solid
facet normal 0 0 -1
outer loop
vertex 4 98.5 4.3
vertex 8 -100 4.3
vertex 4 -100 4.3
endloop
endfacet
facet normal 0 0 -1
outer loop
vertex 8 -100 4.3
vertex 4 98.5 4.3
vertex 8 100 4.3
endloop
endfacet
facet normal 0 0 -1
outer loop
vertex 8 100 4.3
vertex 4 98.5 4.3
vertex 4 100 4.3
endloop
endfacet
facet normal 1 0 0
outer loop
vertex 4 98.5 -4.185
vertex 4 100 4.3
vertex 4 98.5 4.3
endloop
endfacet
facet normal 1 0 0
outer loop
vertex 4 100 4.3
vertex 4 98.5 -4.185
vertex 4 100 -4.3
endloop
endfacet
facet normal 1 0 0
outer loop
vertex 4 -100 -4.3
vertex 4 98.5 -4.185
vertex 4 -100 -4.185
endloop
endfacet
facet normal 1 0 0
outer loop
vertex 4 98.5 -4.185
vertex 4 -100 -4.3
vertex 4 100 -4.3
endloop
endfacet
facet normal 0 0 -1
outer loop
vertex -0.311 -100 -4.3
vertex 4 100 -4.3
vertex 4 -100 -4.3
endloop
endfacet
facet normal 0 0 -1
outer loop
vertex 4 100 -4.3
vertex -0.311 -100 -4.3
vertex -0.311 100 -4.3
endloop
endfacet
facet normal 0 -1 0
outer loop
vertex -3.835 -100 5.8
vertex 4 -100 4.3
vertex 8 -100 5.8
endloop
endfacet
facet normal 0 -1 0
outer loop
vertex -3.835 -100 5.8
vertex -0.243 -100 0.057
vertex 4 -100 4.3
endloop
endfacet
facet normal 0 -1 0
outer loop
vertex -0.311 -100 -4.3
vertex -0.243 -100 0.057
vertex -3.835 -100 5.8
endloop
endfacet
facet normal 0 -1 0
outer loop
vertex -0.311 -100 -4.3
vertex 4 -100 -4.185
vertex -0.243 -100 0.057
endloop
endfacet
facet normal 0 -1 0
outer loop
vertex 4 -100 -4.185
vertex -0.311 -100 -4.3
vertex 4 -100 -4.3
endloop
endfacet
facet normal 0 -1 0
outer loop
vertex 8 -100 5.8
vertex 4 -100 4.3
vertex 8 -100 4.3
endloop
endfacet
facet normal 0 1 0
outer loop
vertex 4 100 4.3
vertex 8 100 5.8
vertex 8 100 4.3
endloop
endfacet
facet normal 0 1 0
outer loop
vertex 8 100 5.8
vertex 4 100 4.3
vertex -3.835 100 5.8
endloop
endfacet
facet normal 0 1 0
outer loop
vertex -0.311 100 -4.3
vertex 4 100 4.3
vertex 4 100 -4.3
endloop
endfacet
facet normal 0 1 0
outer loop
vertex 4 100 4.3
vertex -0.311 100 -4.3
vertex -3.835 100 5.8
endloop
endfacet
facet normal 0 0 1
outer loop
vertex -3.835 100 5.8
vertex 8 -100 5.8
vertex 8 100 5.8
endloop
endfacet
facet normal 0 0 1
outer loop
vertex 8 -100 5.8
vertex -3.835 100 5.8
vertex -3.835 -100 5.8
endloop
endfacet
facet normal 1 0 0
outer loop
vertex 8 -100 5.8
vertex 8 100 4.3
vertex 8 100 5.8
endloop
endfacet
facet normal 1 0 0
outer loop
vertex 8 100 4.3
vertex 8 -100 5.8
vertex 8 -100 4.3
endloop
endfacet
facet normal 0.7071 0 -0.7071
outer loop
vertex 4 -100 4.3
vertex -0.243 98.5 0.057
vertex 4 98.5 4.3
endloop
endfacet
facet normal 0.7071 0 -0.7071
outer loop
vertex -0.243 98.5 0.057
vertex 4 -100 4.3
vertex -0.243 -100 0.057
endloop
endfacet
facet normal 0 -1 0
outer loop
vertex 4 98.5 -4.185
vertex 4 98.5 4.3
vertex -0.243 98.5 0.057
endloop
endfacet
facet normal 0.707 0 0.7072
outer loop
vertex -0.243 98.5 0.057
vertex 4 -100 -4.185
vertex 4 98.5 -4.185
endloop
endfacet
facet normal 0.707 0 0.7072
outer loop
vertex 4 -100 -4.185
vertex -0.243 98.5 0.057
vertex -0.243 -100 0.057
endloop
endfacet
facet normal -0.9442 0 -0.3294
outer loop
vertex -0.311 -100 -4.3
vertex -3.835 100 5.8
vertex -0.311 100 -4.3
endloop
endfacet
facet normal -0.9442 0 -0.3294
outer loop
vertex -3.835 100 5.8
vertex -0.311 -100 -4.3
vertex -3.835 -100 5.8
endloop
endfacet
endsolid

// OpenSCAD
module main_body (depth = 200, height = 11.5, width = 8, top_plate_height = 1.5, top_offset = 4,
                    rail_carve_height = 12, rail_separation = 0, back_stopper_width = 2) {
    difference() {
        union() {
            cube([width , depth, height-top_plate_height], center = true);
            top_plate(x_offset = top_offset/2, z_offset = height/2, top_width = width + top_offset,
                        top_plate_height = top_plate_height, depth = depth);
        }
        rail_diagonal = sqrt(pow(rail_carve_height/2,2) + pow(rail_carve_height/2,2));
        rail_carve_separation = -((rail_diagonal/2 - (height-top_plate_height)/2) + rail_separation);
        rail_carve(x_offset = width/2, z_offset = rail_carve_separation,  depth = depth, size = rail_carve_height/2,
                    back_stopper_width = back_stopper_width);
        edgecut();
    }
}

module top_plate (x_offset = 2, z_offset = 1.5, top_width = 12, top_plate_height = 1.5, depth = 200) {
    translate([x_offset, 0, z_offset]) 
        cube([top_width, depth, top_plate_height], center = true);
}

module rail_carve(x_offset = 4, z_offset = 0.75, depth = 200, size = 6, back_stopper_width = 2) {
    translate([x_offset, -back_stopper_width, z_offset])
        rotate([0, 45 , 0])
            cube([size , depth + 1, size], center = true);
}

module right_triangle(side1, side2, corner_radius, triangle_height, center = true){
  translate([corner_radius, corner_radius, 0]){  
    hull(){  
    cylinder(r = corner_radius, h = triangle_height, center = center);
        translate([side1 - corner_radius * 2, 0, 0])
            cylinder(r = corner_radius, h = triangle_height, center = center);
            translate([0, side2 - corner_radius * 2, 0])
                cylinder(r = corner_radius, h = triangle_height, center = center);  
    }
  }
    
}
// TODO: make this function parametric
module edgecut() {
    rotate([90, 0, 0])
        translate([-4.2,-5.2,0]) 
            right_triangle(4.2,12,0.01,202, center = true);
}

main_body(depth = 200, height = 10.1, width = 8, top_plate_height = 1.5, top_offset = 4,
                    rail_carve_height = 12, rail_separation = 0, back_stopper_width = 2);
